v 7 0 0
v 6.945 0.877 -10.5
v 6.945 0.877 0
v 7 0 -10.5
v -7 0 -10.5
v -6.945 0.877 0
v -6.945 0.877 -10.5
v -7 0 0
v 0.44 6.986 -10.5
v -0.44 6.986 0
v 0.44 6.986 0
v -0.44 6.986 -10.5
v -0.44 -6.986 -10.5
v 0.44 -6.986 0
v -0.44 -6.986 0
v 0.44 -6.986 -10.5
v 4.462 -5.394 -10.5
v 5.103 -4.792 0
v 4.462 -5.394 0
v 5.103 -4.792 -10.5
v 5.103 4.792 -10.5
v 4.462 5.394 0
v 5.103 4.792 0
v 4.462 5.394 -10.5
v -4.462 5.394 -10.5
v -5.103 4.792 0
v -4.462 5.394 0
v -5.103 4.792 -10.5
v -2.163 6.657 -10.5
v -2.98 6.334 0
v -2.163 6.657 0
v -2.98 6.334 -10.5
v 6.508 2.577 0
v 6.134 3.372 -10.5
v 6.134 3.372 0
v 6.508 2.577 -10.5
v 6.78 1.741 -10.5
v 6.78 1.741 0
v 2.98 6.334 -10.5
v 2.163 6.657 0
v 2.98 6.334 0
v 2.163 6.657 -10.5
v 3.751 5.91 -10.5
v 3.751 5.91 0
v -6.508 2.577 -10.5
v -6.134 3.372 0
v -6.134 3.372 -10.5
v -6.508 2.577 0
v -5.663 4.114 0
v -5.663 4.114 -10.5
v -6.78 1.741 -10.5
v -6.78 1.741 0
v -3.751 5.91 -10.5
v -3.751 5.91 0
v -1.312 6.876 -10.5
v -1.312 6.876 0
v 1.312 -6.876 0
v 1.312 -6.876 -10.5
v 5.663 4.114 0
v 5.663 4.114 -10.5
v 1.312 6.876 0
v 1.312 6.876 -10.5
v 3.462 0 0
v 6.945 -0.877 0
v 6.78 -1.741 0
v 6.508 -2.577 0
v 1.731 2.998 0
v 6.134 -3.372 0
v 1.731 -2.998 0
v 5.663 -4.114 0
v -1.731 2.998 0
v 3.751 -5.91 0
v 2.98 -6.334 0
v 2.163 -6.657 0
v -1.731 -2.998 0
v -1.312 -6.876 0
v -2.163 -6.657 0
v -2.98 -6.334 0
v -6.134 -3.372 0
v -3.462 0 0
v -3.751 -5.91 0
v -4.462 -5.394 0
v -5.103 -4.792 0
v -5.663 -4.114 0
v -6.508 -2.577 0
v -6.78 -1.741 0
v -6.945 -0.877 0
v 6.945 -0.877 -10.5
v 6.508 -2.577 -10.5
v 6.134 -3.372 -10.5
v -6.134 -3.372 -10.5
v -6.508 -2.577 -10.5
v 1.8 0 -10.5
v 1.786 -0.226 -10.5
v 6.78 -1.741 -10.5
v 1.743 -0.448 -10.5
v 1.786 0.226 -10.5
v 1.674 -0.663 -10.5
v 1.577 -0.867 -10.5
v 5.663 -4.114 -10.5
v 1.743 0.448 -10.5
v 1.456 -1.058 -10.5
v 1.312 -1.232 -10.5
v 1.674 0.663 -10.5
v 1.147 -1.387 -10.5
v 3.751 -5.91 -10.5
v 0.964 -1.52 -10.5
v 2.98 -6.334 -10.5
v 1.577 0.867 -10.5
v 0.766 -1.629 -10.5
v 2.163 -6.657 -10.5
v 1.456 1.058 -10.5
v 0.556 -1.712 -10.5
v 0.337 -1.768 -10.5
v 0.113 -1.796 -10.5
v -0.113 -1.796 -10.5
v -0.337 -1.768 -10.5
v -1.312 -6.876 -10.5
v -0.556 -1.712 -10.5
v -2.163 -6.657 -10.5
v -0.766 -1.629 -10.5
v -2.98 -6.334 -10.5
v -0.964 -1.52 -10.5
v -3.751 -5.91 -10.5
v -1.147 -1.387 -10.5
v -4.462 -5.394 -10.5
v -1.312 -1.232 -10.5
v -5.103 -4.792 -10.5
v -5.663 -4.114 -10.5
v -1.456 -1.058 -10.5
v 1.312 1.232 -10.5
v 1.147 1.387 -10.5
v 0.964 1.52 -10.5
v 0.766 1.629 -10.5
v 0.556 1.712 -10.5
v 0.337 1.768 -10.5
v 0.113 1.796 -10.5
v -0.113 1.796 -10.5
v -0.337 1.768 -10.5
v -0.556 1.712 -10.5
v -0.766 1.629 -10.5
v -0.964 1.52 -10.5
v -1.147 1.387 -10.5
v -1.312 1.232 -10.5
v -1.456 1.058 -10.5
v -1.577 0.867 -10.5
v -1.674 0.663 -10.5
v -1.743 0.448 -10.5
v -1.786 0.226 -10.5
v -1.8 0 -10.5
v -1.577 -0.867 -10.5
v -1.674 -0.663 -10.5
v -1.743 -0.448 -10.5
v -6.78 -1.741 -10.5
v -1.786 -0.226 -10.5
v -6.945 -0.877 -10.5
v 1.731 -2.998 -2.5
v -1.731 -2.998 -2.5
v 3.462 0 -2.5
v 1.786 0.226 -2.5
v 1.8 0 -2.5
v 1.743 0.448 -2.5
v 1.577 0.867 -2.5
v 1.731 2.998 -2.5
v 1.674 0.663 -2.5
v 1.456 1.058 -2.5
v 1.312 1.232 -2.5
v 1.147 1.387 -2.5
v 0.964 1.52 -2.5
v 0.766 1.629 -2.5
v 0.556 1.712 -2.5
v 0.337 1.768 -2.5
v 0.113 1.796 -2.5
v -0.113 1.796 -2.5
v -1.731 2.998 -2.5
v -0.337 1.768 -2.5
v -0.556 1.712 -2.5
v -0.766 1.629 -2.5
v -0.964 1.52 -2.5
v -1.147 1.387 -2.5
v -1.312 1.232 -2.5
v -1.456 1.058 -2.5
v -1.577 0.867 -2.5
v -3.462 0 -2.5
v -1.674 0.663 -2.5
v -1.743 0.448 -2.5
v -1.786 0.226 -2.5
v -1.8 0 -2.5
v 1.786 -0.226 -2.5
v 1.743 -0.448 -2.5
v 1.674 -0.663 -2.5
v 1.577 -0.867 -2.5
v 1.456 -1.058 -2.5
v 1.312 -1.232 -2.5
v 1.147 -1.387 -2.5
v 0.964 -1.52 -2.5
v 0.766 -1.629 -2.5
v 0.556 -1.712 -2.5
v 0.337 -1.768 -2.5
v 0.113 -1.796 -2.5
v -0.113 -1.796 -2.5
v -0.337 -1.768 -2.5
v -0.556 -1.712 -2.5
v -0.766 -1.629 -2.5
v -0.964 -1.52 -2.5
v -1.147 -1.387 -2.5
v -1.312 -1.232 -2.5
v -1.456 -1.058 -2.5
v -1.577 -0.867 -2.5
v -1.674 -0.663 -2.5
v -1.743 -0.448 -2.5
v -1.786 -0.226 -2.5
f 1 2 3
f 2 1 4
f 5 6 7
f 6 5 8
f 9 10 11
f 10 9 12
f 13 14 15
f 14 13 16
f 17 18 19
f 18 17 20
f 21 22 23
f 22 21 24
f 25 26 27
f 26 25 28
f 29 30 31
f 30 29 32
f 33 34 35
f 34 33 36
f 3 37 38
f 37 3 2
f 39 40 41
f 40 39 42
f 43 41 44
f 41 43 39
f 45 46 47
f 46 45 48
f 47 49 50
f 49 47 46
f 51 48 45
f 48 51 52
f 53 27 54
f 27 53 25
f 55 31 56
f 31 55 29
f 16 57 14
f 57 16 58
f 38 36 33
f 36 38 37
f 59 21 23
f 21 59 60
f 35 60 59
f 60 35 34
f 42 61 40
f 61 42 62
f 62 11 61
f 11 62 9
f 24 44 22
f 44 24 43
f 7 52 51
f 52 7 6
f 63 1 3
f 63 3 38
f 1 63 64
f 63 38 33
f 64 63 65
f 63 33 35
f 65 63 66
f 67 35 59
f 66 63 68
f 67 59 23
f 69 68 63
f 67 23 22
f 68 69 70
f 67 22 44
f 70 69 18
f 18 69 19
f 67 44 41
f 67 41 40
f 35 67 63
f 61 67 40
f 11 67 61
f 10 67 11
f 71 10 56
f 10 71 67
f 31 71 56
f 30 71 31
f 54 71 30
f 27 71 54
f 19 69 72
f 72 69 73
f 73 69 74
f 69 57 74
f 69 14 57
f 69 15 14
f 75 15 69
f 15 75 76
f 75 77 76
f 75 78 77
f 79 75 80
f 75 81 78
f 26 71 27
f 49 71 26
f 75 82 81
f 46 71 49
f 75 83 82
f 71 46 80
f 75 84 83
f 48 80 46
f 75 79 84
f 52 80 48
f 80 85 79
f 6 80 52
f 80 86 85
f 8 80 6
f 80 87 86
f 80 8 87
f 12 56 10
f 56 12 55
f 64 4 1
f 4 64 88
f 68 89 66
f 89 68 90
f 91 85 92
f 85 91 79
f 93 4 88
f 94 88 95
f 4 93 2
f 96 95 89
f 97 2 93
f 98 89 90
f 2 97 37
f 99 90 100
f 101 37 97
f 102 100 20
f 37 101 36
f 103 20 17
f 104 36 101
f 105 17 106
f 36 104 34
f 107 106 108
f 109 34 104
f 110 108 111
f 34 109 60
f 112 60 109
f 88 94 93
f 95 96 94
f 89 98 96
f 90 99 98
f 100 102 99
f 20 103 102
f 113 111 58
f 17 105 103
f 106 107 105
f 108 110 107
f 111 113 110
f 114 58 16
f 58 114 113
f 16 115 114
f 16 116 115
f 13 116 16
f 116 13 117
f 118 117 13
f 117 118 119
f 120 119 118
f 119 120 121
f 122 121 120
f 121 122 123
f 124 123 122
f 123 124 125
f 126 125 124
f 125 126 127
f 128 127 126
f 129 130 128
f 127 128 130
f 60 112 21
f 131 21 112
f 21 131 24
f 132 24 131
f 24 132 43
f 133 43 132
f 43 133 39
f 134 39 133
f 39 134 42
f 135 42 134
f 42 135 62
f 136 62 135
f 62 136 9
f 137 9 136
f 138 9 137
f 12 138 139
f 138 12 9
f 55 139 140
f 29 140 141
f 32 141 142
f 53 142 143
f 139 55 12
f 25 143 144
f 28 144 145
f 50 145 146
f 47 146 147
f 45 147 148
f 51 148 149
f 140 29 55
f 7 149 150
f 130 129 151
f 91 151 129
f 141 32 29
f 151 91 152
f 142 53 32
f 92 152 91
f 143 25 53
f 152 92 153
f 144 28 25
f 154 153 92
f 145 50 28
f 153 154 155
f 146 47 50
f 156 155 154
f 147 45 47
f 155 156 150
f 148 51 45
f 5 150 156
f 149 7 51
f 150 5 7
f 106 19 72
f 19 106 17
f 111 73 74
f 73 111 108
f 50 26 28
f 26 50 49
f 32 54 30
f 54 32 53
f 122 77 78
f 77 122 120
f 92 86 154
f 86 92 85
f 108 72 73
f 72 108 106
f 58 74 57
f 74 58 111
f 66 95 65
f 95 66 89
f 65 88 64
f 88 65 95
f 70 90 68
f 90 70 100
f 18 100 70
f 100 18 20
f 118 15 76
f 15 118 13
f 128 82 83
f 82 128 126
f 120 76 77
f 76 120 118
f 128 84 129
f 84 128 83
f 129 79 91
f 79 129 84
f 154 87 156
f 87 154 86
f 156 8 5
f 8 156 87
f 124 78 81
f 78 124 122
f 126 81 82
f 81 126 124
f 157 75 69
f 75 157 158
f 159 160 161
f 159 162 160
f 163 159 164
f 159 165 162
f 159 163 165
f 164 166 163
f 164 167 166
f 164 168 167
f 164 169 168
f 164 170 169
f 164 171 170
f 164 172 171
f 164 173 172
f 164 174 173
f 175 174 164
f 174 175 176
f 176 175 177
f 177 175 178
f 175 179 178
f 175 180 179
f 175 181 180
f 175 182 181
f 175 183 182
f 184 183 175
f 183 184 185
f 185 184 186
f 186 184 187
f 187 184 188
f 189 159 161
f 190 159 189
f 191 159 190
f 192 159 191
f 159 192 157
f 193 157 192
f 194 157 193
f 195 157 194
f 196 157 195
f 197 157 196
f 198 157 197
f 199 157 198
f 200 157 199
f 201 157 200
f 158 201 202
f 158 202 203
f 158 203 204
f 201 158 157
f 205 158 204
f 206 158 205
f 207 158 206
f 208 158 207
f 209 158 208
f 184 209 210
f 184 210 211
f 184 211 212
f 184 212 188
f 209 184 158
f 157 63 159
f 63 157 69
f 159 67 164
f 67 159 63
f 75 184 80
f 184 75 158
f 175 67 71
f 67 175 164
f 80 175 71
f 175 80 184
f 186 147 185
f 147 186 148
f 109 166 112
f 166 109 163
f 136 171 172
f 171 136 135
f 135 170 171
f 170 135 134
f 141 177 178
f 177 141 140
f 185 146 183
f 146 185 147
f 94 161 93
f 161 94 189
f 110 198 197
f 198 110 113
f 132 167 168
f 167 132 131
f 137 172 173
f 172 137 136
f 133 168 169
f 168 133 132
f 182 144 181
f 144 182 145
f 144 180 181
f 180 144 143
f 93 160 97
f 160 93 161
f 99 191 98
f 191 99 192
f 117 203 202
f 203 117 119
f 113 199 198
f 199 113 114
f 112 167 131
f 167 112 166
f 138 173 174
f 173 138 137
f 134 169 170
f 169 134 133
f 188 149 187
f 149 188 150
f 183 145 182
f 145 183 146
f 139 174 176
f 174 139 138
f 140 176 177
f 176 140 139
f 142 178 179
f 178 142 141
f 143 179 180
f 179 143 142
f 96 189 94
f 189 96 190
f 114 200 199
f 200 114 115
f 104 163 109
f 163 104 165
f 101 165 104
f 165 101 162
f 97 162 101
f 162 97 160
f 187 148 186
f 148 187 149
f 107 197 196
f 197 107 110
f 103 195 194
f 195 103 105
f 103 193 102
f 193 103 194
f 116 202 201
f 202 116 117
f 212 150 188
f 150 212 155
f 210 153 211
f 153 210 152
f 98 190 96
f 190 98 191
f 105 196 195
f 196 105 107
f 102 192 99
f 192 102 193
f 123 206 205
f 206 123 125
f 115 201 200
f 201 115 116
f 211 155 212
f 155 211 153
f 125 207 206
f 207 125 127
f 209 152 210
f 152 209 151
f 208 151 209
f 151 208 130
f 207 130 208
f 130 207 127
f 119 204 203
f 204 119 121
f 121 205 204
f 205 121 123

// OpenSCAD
$fn = 50;


difference() {
	union() {
		translate(v = [0, 0, -10.5000000000]) {
			cylinder(h = 10.5000000000, r = 7.0000000000);
		}
		translate(v = [0, 0, -9.0000000000]) {
			cylinder(h = 9, r = 2.8750000000);
		}
	}
	union() {
		translate(v = [0, 0, 0]) {
			rotate(a = [0, 0, 0]) {
				difference() {
					union() {
						translate(v = [0, 0, -2.5000000000]) {
							linear_extrude(height = 2.5000000000) {
								polygon(points = [[3.4620000000, 0.0000000000], [1.7310000000, 2.9981799479], [-1.7310000000, 2.9981799479], [-3.4620000000, 0.0000000000], [-1.7310000000, -2.9981799479], [1.7310000000, -2.9981799479]]);
							}
						}
					}
					union();
				}
			}
		}
		#translate(v = [0, 0, -100.0000000000]) {
			cylinder(h = 200, r = 1.8000000000);
		}
	}
}
